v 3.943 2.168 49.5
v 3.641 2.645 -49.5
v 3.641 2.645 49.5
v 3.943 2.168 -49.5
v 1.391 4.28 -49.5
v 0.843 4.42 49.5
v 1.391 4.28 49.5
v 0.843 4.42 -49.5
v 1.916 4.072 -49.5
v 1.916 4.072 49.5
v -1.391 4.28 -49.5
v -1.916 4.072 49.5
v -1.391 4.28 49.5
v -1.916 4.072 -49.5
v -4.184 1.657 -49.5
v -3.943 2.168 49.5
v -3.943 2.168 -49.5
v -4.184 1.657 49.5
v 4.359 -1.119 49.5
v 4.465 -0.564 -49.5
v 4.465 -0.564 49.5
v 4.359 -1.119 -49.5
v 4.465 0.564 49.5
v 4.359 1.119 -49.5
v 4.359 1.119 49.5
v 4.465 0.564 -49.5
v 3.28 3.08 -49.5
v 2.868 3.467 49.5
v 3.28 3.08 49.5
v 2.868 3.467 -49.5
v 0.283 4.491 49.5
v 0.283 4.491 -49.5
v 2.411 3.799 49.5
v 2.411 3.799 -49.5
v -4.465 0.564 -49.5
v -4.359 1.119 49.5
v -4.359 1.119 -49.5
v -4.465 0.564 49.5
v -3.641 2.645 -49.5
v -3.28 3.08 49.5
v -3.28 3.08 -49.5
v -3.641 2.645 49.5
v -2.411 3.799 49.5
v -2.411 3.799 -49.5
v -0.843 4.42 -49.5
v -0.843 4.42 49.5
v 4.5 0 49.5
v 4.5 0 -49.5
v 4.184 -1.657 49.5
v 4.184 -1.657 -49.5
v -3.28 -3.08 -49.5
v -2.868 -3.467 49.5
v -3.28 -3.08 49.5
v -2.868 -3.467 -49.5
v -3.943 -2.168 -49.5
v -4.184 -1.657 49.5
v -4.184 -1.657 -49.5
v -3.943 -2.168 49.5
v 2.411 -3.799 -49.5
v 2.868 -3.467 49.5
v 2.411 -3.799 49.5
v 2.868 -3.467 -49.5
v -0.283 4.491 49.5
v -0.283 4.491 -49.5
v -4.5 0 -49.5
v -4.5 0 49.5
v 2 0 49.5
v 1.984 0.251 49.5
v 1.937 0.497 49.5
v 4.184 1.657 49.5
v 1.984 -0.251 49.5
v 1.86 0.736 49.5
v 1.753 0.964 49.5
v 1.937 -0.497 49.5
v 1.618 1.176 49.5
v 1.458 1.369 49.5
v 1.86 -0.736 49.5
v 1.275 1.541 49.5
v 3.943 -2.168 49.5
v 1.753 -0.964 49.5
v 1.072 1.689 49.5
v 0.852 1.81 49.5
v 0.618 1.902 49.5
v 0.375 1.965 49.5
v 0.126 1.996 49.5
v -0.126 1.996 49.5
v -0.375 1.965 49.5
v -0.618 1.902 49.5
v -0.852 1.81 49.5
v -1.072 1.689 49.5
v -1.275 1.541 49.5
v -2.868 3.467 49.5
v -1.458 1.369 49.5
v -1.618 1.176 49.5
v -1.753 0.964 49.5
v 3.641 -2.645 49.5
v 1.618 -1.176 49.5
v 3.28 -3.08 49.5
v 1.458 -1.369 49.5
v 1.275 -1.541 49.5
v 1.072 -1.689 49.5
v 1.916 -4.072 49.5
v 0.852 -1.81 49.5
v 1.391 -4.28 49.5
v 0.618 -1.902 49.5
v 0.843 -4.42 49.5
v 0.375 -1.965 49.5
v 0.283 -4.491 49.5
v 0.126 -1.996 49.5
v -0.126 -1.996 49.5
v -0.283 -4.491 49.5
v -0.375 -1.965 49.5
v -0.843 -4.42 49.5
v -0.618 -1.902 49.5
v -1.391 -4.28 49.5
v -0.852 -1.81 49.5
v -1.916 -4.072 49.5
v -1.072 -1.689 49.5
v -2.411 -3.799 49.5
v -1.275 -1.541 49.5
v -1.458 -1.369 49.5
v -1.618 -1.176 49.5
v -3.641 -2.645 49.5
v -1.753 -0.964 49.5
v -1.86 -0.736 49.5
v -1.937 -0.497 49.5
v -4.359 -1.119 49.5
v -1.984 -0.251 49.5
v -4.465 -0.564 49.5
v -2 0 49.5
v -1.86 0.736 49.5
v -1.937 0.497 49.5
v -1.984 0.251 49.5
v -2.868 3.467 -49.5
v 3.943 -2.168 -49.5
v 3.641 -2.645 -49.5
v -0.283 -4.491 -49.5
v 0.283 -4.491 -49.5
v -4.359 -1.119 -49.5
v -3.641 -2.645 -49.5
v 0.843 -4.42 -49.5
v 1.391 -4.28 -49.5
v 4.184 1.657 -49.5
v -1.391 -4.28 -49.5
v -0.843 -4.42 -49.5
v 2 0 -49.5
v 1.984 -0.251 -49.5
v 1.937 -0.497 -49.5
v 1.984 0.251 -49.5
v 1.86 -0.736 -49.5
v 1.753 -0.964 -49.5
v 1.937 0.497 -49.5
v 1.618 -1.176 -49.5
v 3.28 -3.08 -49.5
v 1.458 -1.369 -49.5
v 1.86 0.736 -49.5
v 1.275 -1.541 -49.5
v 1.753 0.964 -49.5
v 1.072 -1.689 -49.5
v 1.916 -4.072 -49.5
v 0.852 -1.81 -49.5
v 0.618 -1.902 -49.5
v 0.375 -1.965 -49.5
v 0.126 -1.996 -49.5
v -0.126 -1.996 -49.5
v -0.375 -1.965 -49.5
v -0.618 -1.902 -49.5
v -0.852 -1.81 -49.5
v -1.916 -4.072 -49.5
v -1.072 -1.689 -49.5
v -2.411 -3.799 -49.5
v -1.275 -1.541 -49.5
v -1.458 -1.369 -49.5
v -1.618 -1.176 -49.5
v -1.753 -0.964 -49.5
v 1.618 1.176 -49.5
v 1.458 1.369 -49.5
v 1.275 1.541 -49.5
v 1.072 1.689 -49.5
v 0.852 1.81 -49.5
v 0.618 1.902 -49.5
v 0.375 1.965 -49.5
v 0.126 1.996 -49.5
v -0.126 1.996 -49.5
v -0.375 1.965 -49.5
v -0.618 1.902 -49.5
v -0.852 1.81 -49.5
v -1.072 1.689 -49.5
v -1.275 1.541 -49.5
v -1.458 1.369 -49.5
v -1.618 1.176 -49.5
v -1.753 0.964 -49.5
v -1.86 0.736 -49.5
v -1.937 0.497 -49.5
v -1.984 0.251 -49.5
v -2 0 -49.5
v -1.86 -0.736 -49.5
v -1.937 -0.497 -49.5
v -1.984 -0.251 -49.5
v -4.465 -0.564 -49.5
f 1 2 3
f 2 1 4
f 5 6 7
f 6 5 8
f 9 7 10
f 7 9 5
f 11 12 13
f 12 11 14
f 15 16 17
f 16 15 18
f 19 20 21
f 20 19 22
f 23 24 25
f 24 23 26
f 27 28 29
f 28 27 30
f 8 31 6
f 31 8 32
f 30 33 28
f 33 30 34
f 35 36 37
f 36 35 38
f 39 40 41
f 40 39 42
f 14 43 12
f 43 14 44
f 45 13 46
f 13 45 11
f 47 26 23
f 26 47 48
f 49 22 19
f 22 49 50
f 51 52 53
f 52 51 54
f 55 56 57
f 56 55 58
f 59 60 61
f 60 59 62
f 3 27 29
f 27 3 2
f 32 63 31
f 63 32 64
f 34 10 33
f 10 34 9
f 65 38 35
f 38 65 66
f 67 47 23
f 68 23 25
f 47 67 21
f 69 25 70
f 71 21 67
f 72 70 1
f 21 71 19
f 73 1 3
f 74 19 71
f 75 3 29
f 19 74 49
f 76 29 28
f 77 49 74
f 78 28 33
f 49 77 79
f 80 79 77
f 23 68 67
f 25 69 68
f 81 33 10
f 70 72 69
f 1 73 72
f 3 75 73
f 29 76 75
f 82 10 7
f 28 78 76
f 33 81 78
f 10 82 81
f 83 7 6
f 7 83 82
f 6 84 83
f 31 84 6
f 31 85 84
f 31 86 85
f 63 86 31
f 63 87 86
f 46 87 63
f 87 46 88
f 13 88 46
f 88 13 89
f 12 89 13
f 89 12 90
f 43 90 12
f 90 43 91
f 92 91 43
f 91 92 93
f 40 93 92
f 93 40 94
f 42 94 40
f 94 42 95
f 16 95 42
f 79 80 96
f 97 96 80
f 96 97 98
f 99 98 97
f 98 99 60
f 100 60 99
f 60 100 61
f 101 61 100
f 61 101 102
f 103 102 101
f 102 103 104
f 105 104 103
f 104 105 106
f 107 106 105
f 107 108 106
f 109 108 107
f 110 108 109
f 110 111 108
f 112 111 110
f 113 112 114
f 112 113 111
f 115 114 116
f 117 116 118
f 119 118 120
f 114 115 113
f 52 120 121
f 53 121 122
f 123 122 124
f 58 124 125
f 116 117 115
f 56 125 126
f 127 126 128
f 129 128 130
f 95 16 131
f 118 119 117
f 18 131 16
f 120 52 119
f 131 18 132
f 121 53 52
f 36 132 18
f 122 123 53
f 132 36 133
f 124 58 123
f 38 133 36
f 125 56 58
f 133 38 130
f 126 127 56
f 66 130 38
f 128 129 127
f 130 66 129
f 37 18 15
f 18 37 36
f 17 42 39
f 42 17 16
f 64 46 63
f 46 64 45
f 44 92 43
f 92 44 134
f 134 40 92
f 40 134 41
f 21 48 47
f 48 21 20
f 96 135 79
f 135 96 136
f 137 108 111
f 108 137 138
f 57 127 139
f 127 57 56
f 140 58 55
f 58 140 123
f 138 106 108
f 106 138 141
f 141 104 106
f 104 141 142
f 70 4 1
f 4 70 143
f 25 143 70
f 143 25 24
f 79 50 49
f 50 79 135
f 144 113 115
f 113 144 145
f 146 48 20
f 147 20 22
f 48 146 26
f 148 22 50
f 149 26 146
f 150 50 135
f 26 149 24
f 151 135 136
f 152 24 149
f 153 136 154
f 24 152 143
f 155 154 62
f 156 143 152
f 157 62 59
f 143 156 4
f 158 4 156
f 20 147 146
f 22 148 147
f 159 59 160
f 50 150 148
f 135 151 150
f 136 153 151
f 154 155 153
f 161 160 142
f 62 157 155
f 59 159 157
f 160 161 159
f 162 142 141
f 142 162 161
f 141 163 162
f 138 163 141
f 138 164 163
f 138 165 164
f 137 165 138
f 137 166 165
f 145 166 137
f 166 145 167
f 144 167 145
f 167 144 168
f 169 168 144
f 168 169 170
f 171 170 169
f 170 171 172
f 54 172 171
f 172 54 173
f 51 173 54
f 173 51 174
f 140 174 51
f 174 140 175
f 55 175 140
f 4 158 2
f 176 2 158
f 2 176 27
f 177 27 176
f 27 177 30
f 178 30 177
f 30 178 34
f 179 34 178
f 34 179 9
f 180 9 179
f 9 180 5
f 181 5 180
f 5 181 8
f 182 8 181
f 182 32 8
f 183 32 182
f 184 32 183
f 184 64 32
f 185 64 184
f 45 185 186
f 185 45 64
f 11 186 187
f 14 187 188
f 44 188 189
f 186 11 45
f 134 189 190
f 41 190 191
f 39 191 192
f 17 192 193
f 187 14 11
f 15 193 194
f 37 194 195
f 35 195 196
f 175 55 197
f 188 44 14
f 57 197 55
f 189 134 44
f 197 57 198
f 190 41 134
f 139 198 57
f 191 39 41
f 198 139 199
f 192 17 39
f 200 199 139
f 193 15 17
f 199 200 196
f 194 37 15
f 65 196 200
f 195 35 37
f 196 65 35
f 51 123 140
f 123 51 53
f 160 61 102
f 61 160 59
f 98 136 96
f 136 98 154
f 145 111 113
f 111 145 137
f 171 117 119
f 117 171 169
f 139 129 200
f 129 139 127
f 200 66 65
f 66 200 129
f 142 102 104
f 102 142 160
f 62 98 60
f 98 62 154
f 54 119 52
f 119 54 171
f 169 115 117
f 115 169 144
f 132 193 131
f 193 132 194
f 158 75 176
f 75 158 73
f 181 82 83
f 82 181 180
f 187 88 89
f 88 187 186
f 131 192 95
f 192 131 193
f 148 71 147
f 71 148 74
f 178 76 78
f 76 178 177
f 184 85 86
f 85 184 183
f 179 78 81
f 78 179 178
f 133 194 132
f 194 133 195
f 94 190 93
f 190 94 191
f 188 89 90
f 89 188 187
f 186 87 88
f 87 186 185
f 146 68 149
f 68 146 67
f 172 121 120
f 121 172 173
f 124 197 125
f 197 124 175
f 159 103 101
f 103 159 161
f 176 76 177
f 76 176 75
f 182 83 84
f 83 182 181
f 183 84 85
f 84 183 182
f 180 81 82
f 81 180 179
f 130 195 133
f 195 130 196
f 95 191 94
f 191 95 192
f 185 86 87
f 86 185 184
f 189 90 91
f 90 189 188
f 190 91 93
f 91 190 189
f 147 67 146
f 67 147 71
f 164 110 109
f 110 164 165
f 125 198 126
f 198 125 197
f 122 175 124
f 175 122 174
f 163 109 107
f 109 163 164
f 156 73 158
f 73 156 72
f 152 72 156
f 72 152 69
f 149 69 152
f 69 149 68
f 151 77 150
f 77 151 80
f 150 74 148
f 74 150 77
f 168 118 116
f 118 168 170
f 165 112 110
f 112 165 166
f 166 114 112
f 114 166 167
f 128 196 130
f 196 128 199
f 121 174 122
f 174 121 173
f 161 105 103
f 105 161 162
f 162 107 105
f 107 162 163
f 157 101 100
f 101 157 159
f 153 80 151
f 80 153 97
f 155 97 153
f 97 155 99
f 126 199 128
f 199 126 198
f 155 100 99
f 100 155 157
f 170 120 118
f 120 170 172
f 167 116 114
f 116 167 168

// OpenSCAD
$fn = 50;


difference() {
	union() {
		translate(v = [0, 0, -49.5000000000]) {
			cylinder(h = 99, r = 4.5000000000);
		}
	}
	union() {
		translate(v = [0, 0, -100.0000000000]) {
			cylinder(h = 200, r = 2);
		}
	}
}
